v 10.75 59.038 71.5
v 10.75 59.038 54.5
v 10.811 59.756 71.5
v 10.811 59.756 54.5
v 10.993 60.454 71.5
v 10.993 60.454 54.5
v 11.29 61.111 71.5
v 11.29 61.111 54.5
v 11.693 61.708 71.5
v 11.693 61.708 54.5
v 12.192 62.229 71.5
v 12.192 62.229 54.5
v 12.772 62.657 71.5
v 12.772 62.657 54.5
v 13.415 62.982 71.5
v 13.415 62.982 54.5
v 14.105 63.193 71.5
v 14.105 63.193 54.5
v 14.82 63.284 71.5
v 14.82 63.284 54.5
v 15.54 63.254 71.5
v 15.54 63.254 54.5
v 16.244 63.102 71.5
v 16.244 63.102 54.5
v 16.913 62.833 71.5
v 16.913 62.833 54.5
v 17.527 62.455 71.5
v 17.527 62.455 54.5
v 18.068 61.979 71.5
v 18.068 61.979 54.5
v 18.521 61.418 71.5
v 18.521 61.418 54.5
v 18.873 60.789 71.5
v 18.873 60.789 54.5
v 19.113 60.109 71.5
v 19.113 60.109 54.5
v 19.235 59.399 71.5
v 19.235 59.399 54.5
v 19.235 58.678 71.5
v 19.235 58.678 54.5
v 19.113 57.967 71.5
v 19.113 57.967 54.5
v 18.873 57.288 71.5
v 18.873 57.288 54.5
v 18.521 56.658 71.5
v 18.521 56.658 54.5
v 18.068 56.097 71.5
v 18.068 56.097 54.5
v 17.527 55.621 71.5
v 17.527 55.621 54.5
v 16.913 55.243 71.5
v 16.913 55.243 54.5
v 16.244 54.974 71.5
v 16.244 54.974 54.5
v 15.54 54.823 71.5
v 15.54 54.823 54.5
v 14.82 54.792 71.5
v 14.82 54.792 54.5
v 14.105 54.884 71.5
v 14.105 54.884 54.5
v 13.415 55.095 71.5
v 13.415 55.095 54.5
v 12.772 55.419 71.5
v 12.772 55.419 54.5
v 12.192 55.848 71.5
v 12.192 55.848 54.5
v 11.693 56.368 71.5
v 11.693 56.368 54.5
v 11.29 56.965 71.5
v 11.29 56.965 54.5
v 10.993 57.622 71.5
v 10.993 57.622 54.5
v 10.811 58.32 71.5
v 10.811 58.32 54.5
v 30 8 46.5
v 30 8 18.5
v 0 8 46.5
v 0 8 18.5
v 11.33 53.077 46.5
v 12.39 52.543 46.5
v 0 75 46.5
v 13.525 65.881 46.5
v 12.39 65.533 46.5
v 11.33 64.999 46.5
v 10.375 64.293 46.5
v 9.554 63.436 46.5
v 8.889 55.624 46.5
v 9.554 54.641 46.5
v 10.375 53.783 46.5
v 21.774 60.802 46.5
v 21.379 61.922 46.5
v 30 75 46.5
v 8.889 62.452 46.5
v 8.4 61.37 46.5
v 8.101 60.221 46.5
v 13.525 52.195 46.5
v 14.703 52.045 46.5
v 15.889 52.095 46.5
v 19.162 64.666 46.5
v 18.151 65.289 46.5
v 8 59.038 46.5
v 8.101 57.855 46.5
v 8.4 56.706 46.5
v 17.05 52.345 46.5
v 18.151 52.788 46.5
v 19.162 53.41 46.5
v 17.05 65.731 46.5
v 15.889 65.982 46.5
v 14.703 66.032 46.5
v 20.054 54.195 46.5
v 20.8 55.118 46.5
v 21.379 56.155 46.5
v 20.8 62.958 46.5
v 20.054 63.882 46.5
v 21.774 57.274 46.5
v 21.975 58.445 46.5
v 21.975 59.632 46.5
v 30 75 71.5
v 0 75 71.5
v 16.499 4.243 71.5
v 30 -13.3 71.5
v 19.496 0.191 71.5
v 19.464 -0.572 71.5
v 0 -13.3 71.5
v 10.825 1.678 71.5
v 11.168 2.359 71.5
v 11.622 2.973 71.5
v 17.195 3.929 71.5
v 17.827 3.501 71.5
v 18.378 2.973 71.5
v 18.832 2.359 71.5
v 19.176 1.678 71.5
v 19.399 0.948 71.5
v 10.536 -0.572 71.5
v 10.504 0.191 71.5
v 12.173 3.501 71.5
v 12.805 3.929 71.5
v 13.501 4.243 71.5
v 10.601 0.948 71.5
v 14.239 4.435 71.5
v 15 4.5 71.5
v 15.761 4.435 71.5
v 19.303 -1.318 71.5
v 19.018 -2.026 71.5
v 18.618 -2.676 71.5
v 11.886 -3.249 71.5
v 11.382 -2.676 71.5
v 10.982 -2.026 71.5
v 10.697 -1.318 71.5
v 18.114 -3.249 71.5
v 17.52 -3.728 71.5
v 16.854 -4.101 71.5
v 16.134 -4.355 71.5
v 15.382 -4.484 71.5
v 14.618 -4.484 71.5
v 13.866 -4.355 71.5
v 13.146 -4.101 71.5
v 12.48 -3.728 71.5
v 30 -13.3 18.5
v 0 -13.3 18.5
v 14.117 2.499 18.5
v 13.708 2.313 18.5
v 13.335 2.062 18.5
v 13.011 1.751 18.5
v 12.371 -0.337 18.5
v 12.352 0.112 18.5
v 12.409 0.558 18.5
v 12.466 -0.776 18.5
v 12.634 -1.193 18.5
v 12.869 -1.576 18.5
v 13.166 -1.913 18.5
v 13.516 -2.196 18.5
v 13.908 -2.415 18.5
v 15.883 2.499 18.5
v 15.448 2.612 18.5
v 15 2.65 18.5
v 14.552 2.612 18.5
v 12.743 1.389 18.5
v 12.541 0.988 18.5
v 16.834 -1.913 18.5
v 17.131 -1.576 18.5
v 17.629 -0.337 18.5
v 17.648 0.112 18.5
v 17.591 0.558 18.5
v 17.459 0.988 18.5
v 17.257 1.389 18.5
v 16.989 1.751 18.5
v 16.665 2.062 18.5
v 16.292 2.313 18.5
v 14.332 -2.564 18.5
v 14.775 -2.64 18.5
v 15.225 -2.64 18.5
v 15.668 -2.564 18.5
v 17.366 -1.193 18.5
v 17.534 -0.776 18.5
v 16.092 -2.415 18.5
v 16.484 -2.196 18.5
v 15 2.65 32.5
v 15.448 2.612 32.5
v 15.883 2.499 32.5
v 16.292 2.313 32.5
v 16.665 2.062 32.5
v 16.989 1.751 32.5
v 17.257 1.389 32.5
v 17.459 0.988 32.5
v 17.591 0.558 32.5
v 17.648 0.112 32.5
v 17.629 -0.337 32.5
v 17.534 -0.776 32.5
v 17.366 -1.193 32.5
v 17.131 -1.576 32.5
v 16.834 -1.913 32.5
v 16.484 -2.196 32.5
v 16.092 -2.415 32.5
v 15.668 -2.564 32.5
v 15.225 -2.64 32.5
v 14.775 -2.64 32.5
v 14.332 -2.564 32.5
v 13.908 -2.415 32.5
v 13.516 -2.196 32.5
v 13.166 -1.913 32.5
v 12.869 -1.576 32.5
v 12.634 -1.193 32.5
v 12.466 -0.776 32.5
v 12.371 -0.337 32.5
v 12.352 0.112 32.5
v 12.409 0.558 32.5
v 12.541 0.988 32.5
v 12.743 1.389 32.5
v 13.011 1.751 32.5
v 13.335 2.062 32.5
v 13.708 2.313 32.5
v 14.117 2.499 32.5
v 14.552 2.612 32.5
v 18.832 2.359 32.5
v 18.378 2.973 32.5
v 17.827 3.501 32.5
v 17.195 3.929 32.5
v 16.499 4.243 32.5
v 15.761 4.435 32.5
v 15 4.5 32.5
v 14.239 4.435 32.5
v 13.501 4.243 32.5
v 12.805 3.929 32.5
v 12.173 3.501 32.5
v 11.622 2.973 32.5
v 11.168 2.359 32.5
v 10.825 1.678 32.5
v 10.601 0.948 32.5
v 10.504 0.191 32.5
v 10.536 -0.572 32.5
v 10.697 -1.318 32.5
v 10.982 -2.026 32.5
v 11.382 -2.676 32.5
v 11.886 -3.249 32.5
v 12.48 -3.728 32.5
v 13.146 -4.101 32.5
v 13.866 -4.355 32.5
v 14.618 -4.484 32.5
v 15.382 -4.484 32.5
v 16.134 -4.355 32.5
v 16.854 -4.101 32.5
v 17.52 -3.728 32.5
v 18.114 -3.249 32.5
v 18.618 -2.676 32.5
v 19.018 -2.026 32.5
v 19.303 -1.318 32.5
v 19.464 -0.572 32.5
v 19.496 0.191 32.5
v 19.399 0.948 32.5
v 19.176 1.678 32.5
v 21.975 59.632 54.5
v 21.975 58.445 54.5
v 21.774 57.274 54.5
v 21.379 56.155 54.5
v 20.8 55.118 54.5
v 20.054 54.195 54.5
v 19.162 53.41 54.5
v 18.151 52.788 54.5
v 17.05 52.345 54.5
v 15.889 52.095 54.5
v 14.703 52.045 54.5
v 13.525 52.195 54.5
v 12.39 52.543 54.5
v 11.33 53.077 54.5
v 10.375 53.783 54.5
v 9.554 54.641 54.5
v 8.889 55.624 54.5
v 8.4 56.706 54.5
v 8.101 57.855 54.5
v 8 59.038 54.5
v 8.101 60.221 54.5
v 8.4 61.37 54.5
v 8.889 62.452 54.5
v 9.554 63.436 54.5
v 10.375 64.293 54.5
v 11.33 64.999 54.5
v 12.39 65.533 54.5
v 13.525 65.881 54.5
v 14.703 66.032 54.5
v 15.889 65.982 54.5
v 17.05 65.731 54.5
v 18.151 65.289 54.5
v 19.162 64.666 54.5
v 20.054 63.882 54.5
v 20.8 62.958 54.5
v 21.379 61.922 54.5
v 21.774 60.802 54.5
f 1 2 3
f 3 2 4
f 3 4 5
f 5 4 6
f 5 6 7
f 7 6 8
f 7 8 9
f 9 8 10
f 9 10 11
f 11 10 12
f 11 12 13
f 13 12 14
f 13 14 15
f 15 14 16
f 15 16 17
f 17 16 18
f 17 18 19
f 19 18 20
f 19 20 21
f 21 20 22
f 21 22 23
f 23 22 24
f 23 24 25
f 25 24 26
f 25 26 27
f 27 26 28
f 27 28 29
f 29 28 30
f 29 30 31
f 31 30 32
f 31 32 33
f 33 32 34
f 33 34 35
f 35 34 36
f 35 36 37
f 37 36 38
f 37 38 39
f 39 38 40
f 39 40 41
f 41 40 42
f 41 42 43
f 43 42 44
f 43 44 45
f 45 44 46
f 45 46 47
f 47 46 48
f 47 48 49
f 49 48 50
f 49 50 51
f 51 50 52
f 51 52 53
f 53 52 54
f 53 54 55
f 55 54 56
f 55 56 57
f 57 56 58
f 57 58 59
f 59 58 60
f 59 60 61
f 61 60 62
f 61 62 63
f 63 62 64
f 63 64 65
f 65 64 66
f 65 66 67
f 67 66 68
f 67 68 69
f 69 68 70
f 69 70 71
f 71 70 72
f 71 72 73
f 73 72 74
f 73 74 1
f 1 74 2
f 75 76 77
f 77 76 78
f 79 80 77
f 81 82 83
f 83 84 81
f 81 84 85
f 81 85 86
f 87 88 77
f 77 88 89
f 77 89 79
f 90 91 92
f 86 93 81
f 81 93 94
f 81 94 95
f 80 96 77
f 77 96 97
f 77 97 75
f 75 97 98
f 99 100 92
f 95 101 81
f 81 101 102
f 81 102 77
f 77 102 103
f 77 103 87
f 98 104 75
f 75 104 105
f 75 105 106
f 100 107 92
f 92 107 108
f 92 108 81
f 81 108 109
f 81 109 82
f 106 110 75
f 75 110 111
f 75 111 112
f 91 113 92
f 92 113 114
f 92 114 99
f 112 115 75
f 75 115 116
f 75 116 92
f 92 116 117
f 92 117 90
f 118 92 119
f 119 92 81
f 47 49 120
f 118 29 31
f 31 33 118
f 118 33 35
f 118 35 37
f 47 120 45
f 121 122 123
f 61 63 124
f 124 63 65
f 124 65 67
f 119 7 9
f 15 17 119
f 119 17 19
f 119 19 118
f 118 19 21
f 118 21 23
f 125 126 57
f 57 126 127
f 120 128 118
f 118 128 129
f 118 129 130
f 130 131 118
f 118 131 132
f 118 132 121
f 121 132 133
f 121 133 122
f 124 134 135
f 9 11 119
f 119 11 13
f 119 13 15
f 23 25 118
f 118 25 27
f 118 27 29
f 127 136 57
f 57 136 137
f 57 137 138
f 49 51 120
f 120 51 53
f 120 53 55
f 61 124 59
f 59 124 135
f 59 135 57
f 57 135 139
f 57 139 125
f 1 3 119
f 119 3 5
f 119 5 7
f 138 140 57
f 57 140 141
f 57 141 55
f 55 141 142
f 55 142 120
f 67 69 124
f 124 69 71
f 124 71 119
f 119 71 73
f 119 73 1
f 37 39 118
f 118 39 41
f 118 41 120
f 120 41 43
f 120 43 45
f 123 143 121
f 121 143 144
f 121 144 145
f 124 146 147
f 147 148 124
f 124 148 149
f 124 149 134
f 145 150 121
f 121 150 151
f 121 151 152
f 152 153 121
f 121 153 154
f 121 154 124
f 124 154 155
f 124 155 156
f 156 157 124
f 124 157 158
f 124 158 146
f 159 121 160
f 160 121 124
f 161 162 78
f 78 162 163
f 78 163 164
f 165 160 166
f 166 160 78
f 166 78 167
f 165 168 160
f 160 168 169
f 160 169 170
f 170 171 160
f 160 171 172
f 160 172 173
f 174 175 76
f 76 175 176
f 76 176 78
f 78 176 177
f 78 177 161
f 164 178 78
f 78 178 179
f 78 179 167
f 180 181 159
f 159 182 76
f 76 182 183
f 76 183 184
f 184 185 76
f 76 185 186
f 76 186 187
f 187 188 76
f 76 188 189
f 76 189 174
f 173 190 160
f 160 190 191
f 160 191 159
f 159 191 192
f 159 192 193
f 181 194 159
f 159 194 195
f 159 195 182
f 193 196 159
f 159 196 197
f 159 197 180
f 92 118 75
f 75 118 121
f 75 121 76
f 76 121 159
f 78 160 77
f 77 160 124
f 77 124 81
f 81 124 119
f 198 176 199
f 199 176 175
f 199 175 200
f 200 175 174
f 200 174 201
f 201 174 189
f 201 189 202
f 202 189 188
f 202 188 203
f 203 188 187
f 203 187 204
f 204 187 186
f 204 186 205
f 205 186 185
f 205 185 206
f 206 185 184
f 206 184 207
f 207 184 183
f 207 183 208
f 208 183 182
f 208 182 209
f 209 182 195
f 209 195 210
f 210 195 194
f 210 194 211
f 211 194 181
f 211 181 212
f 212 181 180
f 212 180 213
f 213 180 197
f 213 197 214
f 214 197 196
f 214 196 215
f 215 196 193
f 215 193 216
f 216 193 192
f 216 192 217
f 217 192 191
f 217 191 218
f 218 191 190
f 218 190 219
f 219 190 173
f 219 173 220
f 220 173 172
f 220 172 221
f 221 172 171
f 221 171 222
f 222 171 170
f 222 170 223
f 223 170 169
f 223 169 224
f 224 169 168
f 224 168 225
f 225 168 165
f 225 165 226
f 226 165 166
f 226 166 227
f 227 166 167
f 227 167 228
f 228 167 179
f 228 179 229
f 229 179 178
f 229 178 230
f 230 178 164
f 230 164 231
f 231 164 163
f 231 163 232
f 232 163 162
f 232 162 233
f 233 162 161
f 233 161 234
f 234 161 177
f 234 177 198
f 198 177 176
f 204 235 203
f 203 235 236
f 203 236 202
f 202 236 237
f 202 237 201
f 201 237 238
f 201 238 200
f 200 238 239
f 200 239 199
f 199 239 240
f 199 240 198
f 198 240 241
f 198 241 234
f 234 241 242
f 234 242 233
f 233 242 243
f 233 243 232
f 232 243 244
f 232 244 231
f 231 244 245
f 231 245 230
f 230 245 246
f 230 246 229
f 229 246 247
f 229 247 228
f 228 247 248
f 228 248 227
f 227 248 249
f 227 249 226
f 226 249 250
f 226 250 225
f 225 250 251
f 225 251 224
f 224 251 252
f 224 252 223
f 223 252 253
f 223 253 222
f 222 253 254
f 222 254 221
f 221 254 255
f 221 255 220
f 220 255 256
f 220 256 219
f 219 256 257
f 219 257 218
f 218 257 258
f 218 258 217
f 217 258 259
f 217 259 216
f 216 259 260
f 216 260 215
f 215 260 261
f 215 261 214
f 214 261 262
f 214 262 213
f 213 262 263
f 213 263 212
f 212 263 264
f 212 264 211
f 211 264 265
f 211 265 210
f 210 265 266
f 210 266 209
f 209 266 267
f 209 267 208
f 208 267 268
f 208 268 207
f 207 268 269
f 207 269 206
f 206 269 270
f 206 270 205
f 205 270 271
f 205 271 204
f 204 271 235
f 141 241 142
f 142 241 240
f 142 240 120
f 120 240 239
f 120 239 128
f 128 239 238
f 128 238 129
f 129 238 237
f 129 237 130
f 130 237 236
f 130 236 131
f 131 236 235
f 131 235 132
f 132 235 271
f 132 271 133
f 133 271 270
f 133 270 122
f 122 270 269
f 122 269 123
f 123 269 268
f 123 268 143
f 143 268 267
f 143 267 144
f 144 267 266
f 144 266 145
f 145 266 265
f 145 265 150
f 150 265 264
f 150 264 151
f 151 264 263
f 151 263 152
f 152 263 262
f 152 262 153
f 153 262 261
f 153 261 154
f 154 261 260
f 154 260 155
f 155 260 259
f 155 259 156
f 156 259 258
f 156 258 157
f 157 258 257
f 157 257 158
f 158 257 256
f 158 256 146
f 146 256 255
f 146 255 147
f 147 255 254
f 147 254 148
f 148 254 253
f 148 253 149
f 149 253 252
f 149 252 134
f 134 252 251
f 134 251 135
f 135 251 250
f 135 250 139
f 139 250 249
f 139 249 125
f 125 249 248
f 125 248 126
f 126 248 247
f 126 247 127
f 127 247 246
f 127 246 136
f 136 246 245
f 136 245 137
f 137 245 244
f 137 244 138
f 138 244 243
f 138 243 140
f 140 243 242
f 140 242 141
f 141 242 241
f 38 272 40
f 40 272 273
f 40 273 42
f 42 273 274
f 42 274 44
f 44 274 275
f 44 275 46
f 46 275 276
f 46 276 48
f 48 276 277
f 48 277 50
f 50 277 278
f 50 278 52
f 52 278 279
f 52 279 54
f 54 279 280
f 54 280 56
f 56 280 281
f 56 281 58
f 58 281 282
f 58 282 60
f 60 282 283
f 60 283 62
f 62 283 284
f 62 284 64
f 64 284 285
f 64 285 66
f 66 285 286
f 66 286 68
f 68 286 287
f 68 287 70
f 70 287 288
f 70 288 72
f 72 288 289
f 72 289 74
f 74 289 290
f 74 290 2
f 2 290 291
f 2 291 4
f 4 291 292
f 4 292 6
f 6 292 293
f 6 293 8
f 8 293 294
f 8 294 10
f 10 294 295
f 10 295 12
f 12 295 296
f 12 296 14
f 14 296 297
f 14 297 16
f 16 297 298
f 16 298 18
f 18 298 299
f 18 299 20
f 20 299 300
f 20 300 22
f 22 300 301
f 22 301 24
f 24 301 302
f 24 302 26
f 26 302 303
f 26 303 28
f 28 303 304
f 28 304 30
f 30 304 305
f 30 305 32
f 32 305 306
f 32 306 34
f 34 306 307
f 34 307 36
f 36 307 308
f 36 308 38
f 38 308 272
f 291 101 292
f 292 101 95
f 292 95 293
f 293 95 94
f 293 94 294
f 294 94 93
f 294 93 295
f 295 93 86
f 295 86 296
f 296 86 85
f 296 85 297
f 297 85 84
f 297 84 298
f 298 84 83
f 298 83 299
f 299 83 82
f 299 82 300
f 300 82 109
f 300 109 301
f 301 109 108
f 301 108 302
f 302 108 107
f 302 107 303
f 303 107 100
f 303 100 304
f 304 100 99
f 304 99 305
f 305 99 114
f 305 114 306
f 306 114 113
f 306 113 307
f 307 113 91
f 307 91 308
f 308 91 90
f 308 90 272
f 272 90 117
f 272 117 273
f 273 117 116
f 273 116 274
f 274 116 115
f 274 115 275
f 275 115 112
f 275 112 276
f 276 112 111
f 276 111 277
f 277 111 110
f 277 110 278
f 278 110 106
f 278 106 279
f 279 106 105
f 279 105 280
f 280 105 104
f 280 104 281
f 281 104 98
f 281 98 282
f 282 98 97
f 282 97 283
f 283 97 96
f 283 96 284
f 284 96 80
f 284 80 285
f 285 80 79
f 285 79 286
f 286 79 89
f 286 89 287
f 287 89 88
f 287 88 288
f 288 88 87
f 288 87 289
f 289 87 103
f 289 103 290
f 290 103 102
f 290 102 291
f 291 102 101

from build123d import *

# Parameters (mm, degrees)
EXTRUDE_1_DEPTH     = 30
SKETCH_2_R          = 2.65
CUT_EXTRUDE_1_DEPTH = 54
SKETCH_4_R          = 4.5
CUT_EXTRUDE_3_DEPTH = 40
SKETCH_5_R          = 4.25
CUT_EXTRUDE_4_DEPTH = 26
SKETCH_6_R          = 7
CUT_EXTRUDE_5_DEPTH = 8


with BuildPart() as part:
    # 草图1 → 凸台-拉伸1 (new body)
    with BuildSketch(Plane(origin=(0, 0, 0), x_dir=(0, 0, -1), z_dir=(1, 0, 0))):
        Polygon((-18.5, 8), (-18.5, -13.3), (-71.5, -13.3), (-71.5, 75), (-46.5, 75), (-46.5, 8), align=None)
    extrude(amount=EXTRUDE_1_DEPTH)

    # 草图2 → 切除-拉伸1 (cut, through all)
    with BuildSketch(Plane(origin=(0, 0, 18.5), x_dir=(-1, 0, 0), z_dir=(0, 0, -1))):
        with Locations((-15, 0)):
            Circle(SKETCH_2_R)
    extrude(amount=-CUT_EXTRUDE_1_DEPTH, mode=Mode.SUBTRACT)

    # 草图4 → 切除-拉伸3 (cut, through all)
    with BuildSketch(Plane(origin=(0, 0, 32.5), x_dir=(-1, 0, 0), z_dir=(0, 0, -1))):
        with Locations((-15, 0)):
            Circle(SKETCH_4_R)
    extrude(amount=-CUT_EXTRUDE_3_DEPTH, mode=Mode.SUBTRACT)

    # 草图5 → 切除-拉伸4 (cut, through all)
    with BuildSketch(Plane(origin=(0, 0, 46.5), x_dir=(-1, 0, 0), z_dir=(0, 0, -1))):
        with Locations((-15, 59.038200963)):
            Circle(SKETCH_5_R)
    extrude(amount=-CUT_EXTRUDE_4_DEPTH, mode=Mode.SUBTRACT)

    # 草图6 → 切除-拉伸5 (cut)
    with BuildSketch(Plane(origin=(0, 0, 46.5), x_dir=(-1, 0, 0), z_dir=(0, 0, -1))):
        with Locations((-15, 59.038200963)):
            Circle(SKETCH_6_R)
    extrude(amount=-CUT_EXTRUDE_5_DEPTH, mode=Mode.SUBTRACT)


solid = part.part
